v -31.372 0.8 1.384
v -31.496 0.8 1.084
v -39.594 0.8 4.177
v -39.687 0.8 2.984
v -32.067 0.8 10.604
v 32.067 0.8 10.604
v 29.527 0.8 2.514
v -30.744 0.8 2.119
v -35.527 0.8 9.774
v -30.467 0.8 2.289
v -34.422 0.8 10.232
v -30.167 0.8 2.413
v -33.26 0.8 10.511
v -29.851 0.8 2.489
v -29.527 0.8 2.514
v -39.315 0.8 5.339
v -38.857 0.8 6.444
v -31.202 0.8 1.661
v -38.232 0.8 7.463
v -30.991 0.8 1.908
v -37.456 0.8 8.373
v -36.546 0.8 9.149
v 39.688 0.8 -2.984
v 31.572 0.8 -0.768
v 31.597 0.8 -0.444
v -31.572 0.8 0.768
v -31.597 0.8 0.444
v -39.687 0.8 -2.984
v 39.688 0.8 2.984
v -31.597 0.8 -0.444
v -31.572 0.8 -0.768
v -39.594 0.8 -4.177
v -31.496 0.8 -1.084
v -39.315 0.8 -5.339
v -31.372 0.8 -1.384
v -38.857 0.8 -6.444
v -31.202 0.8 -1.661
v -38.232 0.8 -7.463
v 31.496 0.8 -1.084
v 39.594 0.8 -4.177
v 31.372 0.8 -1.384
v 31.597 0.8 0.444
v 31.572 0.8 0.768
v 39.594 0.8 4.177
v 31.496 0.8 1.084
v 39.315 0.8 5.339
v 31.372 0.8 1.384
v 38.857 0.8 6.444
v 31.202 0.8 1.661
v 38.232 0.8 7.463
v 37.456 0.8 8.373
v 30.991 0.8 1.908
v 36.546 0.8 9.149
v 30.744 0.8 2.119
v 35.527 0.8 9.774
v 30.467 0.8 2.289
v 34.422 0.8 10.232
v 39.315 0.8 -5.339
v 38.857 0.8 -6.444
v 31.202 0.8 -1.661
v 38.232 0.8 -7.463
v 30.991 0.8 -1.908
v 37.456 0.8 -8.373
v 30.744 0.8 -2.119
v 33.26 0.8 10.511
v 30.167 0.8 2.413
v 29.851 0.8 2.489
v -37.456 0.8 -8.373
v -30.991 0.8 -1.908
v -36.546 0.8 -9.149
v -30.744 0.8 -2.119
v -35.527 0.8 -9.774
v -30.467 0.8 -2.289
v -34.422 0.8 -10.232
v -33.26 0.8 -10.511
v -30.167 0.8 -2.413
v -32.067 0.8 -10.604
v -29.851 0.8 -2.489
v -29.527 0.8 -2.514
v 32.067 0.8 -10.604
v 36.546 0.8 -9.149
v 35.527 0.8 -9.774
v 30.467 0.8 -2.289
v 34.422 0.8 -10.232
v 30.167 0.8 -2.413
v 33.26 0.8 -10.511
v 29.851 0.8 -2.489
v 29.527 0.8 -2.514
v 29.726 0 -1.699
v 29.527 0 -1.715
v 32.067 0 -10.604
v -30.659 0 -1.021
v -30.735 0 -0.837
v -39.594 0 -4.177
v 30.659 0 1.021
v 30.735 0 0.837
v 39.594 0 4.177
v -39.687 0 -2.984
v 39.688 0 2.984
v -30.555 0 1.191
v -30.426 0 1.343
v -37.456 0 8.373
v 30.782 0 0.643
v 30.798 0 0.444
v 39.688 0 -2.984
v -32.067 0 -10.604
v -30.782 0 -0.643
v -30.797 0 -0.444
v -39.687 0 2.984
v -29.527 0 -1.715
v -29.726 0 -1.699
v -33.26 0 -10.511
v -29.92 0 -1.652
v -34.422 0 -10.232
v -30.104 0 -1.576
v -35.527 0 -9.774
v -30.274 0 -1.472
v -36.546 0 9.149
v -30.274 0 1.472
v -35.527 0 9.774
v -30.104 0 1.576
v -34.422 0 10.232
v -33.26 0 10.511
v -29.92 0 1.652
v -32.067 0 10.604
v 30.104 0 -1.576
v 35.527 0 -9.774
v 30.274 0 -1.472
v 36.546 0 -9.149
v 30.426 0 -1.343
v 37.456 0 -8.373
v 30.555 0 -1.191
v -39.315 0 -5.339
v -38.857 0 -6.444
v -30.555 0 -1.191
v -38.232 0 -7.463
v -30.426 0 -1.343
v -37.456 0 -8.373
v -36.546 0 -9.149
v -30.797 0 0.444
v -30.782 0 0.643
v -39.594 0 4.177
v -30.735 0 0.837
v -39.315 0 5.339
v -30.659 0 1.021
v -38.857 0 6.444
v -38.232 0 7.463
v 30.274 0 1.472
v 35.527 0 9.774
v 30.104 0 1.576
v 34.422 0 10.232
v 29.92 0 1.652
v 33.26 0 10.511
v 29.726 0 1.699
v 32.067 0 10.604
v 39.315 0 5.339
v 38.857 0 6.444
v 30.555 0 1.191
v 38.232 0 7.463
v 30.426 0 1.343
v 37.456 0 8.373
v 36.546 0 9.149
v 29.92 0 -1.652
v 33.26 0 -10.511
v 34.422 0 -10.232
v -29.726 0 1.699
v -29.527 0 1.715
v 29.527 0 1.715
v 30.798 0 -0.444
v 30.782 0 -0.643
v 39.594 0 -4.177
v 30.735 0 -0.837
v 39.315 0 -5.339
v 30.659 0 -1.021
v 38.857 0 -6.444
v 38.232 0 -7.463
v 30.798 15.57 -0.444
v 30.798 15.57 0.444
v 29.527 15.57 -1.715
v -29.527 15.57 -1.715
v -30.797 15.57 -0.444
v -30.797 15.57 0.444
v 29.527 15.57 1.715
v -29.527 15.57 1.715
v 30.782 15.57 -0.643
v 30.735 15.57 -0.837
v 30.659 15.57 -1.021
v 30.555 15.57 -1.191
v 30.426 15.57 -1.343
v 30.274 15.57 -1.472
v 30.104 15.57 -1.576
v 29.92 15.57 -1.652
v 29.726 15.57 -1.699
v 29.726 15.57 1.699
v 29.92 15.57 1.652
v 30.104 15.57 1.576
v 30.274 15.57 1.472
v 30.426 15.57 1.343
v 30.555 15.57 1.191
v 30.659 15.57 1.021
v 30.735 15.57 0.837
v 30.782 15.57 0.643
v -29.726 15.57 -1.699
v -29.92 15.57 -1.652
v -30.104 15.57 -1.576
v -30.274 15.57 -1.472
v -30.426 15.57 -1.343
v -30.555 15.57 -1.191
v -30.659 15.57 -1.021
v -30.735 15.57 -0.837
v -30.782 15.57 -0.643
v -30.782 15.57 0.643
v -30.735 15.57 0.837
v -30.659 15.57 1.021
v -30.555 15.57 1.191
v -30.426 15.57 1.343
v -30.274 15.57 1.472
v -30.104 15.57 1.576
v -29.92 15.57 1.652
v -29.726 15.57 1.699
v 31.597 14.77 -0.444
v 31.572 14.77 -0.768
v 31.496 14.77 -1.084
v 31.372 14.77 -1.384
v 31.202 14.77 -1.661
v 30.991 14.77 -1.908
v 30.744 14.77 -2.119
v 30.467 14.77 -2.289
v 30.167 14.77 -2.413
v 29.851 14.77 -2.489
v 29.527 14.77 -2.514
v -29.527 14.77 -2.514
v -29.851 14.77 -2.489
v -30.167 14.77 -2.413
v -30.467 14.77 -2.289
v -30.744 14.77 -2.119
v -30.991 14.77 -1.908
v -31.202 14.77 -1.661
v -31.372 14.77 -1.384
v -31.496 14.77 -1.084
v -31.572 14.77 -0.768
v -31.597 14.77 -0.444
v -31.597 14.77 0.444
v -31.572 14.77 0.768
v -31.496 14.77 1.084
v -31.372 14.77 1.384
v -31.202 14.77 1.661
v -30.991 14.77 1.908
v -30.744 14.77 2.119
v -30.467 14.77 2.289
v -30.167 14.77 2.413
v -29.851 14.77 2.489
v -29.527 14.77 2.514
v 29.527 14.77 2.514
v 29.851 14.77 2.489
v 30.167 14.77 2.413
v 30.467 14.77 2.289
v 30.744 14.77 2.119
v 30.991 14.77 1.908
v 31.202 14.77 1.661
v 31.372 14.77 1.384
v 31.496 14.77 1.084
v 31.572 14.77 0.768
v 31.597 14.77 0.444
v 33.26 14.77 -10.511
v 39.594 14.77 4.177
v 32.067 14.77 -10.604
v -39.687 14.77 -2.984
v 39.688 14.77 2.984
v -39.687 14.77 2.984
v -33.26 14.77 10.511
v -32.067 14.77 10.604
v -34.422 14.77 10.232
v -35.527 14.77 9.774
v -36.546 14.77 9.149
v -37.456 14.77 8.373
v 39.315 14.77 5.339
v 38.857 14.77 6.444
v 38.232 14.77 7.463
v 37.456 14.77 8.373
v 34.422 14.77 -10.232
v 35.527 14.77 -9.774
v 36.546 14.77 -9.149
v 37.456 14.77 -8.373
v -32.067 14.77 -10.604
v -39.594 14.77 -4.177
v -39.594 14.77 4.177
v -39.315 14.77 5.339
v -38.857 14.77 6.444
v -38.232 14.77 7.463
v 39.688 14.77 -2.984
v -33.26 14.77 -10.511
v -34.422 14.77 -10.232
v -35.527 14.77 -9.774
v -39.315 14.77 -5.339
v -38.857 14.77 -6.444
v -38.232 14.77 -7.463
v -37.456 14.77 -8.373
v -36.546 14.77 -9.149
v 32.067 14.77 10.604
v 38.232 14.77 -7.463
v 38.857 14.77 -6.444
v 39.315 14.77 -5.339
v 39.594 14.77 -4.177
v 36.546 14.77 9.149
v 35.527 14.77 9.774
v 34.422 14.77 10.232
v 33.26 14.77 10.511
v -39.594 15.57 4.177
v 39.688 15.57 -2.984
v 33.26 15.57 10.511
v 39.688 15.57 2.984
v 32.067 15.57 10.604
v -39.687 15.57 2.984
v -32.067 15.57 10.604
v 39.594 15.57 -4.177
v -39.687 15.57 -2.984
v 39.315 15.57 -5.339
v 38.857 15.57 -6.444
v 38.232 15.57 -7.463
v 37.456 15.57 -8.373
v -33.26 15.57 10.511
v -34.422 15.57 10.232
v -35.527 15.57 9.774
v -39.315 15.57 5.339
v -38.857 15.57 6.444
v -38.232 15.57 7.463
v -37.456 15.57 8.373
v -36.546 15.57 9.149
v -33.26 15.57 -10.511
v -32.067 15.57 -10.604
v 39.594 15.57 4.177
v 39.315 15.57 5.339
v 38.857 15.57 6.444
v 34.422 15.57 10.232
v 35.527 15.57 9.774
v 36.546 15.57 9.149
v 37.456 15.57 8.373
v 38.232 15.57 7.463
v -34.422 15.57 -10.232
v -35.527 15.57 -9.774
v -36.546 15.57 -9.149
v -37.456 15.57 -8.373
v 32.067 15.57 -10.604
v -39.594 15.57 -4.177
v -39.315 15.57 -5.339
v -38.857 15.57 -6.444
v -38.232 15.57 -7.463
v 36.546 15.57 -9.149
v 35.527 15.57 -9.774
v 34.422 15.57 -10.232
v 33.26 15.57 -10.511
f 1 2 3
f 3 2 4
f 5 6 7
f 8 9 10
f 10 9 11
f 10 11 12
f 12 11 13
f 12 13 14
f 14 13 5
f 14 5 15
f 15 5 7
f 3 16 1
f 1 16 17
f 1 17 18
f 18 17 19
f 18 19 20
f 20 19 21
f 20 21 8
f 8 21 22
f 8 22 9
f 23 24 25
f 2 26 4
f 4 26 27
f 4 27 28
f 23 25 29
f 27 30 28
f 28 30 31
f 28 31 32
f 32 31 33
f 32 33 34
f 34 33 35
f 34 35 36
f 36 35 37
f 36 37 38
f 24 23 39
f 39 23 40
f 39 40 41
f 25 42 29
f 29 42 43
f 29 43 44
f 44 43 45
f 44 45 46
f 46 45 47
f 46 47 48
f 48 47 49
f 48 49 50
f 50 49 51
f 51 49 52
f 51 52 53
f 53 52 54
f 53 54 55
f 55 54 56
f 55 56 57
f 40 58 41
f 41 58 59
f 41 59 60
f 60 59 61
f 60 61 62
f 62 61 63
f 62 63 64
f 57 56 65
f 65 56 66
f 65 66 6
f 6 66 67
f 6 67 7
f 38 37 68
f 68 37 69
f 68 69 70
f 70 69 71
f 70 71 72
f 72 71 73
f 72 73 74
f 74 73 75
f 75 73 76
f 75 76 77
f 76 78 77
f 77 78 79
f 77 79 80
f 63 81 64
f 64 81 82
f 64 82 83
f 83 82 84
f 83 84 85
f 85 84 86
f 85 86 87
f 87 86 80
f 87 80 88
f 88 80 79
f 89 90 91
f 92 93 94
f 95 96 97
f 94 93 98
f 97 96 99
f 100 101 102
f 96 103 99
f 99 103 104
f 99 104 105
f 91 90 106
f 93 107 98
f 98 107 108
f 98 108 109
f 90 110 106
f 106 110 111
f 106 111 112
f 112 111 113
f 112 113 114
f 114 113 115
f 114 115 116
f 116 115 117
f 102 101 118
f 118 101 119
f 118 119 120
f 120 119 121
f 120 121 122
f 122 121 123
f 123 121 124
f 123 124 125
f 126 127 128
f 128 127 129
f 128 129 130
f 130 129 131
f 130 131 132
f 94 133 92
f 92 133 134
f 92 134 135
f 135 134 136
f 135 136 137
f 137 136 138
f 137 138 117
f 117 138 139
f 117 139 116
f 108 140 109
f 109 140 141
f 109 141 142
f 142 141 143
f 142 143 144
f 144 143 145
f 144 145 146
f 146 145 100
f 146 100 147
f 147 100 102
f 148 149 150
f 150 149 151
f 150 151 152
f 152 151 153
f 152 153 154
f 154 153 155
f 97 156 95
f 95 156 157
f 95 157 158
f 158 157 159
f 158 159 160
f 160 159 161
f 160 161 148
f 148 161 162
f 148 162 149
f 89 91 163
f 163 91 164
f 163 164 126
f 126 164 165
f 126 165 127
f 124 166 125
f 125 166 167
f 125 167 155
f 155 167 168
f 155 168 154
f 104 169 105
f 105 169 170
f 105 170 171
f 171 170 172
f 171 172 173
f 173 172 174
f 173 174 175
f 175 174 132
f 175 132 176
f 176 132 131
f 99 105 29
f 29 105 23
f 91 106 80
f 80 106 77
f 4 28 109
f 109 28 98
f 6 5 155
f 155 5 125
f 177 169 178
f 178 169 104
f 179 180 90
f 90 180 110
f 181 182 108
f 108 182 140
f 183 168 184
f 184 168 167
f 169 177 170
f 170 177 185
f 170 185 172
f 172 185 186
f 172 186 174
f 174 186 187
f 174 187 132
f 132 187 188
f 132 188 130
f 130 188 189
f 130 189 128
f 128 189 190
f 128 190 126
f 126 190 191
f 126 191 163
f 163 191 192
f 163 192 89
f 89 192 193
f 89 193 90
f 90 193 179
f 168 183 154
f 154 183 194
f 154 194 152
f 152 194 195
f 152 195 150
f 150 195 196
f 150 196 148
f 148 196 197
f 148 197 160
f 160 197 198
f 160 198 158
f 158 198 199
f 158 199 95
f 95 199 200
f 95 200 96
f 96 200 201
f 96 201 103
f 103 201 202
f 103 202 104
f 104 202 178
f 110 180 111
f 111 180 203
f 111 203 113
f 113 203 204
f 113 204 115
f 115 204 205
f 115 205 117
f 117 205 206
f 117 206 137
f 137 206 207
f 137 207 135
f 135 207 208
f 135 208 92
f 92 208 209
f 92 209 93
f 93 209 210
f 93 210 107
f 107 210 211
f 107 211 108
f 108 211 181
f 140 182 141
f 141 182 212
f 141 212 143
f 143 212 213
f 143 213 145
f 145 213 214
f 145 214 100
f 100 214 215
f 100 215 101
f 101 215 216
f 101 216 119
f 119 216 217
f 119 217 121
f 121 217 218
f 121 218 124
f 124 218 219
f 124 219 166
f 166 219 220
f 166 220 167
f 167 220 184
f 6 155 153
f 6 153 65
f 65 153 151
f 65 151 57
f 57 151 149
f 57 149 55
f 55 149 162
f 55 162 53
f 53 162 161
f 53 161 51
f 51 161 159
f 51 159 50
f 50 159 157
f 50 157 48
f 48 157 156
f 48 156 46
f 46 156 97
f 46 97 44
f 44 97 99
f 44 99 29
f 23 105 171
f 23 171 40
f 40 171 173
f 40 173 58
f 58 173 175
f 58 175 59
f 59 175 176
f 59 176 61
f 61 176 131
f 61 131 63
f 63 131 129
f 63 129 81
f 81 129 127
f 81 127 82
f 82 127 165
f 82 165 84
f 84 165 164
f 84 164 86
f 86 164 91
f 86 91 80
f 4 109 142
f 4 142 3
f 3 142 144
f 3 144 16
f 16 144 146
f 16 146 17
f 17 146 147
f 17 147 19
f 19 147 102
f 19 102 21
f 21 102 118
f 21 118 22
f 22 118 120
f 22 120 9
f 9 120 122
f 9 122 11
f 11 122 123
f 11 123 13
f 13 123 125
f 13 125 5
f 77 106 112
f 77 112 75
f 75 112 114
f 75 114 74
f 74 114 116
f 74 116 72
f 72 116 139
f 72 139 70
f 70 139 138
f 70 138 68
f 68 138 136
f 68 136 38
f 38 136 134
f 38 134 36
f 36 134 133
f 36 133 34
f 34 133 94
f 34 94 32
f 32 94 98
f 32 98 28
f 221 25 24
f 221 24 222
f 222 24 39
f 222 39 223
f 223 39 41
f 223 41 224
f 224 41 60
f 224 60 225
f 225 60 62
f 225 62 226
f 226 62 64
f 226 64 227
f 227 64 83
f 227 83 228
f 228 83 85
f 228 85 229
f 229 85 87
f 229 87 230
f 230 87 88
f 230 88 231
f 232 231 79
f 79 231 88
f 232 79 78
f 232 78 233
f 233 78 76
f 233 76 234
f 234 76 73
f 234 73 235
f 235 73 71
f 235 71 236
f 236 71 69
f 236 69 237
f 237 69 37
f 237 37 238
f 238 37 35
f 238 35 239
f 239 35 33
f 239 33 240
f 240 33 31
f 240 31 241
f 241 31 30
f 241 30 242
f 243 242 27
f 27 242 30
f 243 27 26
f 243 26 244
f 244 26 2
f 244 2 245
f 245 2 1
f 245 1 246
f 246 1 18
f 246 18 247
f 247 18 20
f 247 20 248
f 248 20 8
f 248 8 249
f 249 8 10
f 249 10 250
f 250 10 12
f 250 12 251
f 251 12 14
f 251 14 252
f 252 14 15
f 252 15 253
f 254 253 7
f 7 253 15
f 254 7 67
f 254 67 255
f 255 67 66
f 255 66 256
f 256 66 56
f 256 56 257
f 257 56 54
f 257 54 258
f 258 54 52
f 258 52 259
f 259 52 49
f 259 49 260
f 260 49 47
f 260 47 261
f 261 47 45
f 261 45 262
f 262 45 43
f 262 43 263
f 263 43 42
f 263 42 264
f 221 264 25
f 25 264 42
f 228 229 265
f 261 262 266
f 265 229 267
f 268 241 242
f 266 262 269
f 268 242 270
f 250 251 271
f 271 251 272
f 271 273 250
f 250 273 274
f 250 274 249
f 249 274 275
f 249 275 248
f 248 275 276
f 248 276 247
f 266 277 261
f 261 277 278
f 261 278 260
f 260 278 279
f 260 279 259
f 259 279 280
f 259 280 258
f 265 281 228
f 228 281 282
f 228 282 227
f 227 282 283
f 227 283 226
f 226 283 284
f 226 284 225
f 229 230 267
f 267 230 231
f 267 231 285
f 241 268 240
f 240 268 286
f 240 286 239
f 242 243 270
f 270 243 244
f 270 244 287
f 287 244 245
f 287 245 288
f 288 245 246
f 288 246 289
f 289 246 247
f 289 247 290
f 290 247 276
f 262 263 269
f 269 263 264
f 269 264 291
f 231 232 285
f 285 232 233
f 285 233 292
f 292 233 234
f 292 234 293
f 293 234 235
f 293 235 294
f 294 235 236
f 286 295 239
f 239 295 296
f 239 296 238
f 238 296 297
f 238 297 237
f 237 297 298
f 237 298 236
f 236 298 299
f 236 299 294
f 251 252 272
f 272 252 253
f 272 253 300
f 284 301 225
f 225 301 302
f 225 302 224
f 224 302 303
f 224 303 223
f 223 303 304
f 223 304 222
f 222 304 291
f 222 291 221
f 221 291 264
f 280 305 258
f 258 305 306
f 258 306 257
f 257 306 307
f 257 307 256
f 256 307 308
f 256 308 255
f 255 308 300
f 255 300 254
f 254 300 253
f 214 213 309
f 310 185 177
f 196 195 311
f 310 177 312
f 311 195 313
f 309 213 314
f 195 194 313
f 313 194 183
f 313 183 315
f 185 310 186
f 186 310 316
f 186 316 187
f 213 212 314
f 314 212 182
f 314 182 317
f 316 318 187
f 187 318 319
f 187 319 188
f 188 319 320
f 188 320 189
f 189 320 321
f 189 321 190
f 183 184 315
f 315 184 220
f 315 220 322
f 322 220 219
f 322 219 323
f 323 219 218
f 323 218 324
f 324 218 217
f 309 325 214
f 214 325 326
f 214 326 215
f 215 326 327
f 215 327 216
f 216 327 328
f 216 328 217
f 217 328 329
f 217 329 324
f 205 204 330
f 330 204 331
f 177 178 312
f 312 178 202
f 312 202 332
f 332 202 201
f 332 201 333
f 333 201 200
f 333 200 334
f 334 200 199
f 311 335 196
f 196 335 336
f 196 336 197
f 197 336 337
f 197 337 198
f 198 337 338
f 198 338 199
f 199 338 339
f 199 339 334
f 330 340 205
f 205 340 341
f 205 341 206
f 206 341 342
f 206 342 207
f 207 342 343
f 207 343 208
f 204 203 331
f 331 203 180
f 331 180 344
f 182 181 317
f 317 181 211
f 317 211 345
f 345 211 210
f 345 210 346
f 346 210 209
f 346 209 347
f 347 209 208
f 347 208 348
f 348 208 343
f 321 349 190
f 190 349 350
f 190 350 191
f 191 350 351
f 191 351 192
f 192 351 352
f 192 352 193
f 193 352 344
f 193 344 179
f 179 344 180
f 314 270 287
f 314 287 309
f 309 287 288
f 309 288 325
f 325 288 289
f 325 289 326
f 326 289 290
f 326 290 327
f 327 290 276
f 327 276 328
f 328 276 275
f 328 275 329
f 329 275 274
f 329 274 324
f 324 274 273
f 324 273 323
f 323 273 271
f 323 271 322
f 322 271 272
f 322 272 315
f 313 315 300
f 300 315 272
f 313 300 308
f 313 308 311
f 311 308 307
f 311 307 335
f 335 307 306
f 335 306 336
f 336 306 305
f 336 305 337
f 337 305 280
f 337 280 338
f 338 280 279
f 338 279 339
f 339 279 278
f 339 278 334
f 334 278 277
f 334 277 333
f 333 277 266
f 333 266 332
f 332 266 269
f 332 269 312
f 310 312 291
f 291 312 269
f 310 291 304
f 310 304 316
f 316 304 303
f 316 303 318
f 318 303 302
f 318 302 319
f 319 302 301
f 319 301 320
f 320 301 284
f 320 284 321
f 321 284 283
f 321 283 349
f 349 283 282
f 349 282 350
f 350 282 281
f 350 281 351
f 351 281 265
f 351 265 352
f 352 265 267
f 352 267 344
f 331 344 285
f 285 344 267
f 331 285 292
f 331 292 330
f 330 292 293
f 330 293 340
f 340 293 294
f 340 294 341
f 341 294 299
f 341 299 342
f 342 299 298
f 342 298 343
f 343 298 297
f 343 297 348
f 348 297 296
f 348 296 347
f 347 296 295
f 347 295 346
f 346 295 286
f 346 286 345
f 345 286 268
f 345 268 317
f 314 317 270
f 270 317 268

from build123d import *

# Parameters (mm, degrees)
SKETCH1_W           = 79.375
SKETCH1_H           = 21.209
SKETCH1_W_2         = 61.595
SKETCH1_H_2         = 3.429
BOSS_EXTRUDE1_DEPTH = 0.8
FILLET1_R           = 1.27
FILLET2_R           = 7.62
BOSS_EXTRUDE2_START = 13.97
BOSS_EXTRUDE2_DEPTH = 13.97
BOSS_EXTRUDE3_START = 0.8
BOSS_EXTRUDE3_DEPTH = 0.8


with BuildPart() as part:
    # Sketch1 → Boss-Extrude1 (new body)
    with BuildSketch(Plane(origin=(0, 0, 0), x_dir=(1, 0, 0), z_dir=(0, 1, 0))):
        Rectangle(SKETCH1_W, SKETCH1_H)
        Rectangle(SKETCH1_W_2, SKETCH1_H_2, mode=Mode.SUBTRACT)
    extrude(amount=BOSS_EXTRUDE1_DEPTH)

    # Fillet1
    fillet1_edges = [part.edges().sort_by_distance(p)[0] for p in [
        (30.7975, 0.4, 1.7145),
        (30.7975, 0.4, -1.7145),
        (-30.7975, 0.4, -1.7145),
        (-30.7975, 0.4, 1.7145),
    ]]
    fillet(fillet1_edges, radius=FILLET1_R)

    # Fillet2
    fillet2_edges = [part.edges().sort_by_distance(p)[0] for p in [
        (39.6875, 0.4, 10.6045),
        (-39.6875, 0.4, 10.6045),
        (-39.6875, 0.4, -10.6045),
        (39.6875, 0.4, -10.6045),
    ]]
    fillet(fillet2_edges, radius=FILLET2_R)

    # Sketch2 → Boss-Extrude2 (add)
    with BuildSketch(Plane(origin=(0, 0.8, 0), x_dir=(1, 0, 0), z_dir=(0, 1, 0)).offset(BOSS_EXTRUDE2_START)):
        with BuildLine():
            Line((29.5275, 2.5145), (-29.5275, 2.5145))
            ThreePointArc((-29.5275, 2.5145), (-30.991211037, 1.908211037), (-31.5975, 0.4445))
            Line((-31.5975, 0.4445), (-31.5975, -0.4445))
            ThreePointArc((-31.5975, -0.4445), (-30.991211037, -1.908211037), (-29.5275, -2.5145))
            Line((-29.5275, -2.5145), (29.5275, -2.5145))
            ThreePointArc((29.5275, -2.5145), (30.991211037, -1.908211037), (31.5975, -0.4445))
            Line((31.5975, -0.4445), (31.5975, 0.4445))
            ThreePointArc((31.5975, 0.4445), (30.991211037, 1.908211037), (29.5275, 2.5145))
        make_face()
        with BuildLine():
            Line((30.7975, -0.4445), (30.7975, 0.4445))
            ThreePointArc((30.7975, 0.4445), (30.425525612, 1.342525612), (29.5275, 1.7145))
            Line((29.5275, 1.7145), (-29.5275, 1.7145))
            ThreePointArc((-29.5275, 1.7145), (-30.425525612, 1.342525612), (-30.7975, 0.4445))
            Line((-30.7975, 0.4445), (-30.7975, -0.4445))
            ThreePointArc((-30.7975, -0.4445), (-30.425525612, -1.342525612), (-29.5275, -1.7145))
            Line((-29.5275, -1.7145), (29.5275, -1.7145))
            ThreePointArc((29.5275, -1.7145), (30.425525612, -1.342525612), (30.7975, -0.4445))
        make_face(mode=Mode.SUBTRACT)
    extrude(amount=-BOSS_EXTRUDE2_DEPTH)

    # Sketch3 → Boss-Extrude3 (add)
    with BuildSketch(Plane(origin=(0, 14.77, 0), x_dir=(1, 0, 0), z_dir=(0, 1, 0)).offset(BOSS_EXTRUDE3_START)):
        with BuildLine():
            Line((-32.0675, -10.6045), (32.0675, -10.6045))
            ThreePointArc((32.0675, -10.6045), (37.455653673, -8.372653673), (39.6875, -2.9845))
            Line((39.6875, -2.9845), (39.6875, 2.9845))
            ThreePointArc((39.6875, 2.9845), (37.455653673, 8.372653673), (32.0675, 10.6045))
            Line((32.0675, 10.6045), (-32.0675, 10.6045))
            ThreePointArc((-32.0675, 10.6045), (-37.455653673, 8.372653673), (-39.6875, 2.9845))
            Line((-39.6875, 2.9845), (-39.6875, -2.9845))
            ThreePointArc((-39.6875, -2.9845), (-37.455653673, -8.372653673), (-32.0675, -10.6045))
        make_face()
        with BuildLine():
            Line((29.5275, 1.7145), (-29.5275, 1.7145))
            ThreePointArc((-29.5275, 1.7145), (-30.425525612, 1.342525612), (-30.7975, 0.4445))
            Line((-30.7975, 0.4445), (-30.7975, -0.4445))
            ThreePointArc((-30.7975, -0.4445), (-30.425525612, -1.342525612), (-29.5275, -1.7145))
            Line((-29.5275, -1.7145), (29.5275, -1.7145))
            ThreePointArc((29.5275, -1.7145), (30.425525612, -1.342525612), (30.7975, -0.4445))
            Line((30.7975, -0.4445), (30.7975, 0.4445))
            ThreePointArc((30.7975, 0.4445), (30.425525612, 1.342525612), (29.5275, 1.7145))
        make_face(mode=Mode.SUBTRACT)
    extrude(amount=-BOSS_EXTRUDE3_DEPTH)


solid = part.part
